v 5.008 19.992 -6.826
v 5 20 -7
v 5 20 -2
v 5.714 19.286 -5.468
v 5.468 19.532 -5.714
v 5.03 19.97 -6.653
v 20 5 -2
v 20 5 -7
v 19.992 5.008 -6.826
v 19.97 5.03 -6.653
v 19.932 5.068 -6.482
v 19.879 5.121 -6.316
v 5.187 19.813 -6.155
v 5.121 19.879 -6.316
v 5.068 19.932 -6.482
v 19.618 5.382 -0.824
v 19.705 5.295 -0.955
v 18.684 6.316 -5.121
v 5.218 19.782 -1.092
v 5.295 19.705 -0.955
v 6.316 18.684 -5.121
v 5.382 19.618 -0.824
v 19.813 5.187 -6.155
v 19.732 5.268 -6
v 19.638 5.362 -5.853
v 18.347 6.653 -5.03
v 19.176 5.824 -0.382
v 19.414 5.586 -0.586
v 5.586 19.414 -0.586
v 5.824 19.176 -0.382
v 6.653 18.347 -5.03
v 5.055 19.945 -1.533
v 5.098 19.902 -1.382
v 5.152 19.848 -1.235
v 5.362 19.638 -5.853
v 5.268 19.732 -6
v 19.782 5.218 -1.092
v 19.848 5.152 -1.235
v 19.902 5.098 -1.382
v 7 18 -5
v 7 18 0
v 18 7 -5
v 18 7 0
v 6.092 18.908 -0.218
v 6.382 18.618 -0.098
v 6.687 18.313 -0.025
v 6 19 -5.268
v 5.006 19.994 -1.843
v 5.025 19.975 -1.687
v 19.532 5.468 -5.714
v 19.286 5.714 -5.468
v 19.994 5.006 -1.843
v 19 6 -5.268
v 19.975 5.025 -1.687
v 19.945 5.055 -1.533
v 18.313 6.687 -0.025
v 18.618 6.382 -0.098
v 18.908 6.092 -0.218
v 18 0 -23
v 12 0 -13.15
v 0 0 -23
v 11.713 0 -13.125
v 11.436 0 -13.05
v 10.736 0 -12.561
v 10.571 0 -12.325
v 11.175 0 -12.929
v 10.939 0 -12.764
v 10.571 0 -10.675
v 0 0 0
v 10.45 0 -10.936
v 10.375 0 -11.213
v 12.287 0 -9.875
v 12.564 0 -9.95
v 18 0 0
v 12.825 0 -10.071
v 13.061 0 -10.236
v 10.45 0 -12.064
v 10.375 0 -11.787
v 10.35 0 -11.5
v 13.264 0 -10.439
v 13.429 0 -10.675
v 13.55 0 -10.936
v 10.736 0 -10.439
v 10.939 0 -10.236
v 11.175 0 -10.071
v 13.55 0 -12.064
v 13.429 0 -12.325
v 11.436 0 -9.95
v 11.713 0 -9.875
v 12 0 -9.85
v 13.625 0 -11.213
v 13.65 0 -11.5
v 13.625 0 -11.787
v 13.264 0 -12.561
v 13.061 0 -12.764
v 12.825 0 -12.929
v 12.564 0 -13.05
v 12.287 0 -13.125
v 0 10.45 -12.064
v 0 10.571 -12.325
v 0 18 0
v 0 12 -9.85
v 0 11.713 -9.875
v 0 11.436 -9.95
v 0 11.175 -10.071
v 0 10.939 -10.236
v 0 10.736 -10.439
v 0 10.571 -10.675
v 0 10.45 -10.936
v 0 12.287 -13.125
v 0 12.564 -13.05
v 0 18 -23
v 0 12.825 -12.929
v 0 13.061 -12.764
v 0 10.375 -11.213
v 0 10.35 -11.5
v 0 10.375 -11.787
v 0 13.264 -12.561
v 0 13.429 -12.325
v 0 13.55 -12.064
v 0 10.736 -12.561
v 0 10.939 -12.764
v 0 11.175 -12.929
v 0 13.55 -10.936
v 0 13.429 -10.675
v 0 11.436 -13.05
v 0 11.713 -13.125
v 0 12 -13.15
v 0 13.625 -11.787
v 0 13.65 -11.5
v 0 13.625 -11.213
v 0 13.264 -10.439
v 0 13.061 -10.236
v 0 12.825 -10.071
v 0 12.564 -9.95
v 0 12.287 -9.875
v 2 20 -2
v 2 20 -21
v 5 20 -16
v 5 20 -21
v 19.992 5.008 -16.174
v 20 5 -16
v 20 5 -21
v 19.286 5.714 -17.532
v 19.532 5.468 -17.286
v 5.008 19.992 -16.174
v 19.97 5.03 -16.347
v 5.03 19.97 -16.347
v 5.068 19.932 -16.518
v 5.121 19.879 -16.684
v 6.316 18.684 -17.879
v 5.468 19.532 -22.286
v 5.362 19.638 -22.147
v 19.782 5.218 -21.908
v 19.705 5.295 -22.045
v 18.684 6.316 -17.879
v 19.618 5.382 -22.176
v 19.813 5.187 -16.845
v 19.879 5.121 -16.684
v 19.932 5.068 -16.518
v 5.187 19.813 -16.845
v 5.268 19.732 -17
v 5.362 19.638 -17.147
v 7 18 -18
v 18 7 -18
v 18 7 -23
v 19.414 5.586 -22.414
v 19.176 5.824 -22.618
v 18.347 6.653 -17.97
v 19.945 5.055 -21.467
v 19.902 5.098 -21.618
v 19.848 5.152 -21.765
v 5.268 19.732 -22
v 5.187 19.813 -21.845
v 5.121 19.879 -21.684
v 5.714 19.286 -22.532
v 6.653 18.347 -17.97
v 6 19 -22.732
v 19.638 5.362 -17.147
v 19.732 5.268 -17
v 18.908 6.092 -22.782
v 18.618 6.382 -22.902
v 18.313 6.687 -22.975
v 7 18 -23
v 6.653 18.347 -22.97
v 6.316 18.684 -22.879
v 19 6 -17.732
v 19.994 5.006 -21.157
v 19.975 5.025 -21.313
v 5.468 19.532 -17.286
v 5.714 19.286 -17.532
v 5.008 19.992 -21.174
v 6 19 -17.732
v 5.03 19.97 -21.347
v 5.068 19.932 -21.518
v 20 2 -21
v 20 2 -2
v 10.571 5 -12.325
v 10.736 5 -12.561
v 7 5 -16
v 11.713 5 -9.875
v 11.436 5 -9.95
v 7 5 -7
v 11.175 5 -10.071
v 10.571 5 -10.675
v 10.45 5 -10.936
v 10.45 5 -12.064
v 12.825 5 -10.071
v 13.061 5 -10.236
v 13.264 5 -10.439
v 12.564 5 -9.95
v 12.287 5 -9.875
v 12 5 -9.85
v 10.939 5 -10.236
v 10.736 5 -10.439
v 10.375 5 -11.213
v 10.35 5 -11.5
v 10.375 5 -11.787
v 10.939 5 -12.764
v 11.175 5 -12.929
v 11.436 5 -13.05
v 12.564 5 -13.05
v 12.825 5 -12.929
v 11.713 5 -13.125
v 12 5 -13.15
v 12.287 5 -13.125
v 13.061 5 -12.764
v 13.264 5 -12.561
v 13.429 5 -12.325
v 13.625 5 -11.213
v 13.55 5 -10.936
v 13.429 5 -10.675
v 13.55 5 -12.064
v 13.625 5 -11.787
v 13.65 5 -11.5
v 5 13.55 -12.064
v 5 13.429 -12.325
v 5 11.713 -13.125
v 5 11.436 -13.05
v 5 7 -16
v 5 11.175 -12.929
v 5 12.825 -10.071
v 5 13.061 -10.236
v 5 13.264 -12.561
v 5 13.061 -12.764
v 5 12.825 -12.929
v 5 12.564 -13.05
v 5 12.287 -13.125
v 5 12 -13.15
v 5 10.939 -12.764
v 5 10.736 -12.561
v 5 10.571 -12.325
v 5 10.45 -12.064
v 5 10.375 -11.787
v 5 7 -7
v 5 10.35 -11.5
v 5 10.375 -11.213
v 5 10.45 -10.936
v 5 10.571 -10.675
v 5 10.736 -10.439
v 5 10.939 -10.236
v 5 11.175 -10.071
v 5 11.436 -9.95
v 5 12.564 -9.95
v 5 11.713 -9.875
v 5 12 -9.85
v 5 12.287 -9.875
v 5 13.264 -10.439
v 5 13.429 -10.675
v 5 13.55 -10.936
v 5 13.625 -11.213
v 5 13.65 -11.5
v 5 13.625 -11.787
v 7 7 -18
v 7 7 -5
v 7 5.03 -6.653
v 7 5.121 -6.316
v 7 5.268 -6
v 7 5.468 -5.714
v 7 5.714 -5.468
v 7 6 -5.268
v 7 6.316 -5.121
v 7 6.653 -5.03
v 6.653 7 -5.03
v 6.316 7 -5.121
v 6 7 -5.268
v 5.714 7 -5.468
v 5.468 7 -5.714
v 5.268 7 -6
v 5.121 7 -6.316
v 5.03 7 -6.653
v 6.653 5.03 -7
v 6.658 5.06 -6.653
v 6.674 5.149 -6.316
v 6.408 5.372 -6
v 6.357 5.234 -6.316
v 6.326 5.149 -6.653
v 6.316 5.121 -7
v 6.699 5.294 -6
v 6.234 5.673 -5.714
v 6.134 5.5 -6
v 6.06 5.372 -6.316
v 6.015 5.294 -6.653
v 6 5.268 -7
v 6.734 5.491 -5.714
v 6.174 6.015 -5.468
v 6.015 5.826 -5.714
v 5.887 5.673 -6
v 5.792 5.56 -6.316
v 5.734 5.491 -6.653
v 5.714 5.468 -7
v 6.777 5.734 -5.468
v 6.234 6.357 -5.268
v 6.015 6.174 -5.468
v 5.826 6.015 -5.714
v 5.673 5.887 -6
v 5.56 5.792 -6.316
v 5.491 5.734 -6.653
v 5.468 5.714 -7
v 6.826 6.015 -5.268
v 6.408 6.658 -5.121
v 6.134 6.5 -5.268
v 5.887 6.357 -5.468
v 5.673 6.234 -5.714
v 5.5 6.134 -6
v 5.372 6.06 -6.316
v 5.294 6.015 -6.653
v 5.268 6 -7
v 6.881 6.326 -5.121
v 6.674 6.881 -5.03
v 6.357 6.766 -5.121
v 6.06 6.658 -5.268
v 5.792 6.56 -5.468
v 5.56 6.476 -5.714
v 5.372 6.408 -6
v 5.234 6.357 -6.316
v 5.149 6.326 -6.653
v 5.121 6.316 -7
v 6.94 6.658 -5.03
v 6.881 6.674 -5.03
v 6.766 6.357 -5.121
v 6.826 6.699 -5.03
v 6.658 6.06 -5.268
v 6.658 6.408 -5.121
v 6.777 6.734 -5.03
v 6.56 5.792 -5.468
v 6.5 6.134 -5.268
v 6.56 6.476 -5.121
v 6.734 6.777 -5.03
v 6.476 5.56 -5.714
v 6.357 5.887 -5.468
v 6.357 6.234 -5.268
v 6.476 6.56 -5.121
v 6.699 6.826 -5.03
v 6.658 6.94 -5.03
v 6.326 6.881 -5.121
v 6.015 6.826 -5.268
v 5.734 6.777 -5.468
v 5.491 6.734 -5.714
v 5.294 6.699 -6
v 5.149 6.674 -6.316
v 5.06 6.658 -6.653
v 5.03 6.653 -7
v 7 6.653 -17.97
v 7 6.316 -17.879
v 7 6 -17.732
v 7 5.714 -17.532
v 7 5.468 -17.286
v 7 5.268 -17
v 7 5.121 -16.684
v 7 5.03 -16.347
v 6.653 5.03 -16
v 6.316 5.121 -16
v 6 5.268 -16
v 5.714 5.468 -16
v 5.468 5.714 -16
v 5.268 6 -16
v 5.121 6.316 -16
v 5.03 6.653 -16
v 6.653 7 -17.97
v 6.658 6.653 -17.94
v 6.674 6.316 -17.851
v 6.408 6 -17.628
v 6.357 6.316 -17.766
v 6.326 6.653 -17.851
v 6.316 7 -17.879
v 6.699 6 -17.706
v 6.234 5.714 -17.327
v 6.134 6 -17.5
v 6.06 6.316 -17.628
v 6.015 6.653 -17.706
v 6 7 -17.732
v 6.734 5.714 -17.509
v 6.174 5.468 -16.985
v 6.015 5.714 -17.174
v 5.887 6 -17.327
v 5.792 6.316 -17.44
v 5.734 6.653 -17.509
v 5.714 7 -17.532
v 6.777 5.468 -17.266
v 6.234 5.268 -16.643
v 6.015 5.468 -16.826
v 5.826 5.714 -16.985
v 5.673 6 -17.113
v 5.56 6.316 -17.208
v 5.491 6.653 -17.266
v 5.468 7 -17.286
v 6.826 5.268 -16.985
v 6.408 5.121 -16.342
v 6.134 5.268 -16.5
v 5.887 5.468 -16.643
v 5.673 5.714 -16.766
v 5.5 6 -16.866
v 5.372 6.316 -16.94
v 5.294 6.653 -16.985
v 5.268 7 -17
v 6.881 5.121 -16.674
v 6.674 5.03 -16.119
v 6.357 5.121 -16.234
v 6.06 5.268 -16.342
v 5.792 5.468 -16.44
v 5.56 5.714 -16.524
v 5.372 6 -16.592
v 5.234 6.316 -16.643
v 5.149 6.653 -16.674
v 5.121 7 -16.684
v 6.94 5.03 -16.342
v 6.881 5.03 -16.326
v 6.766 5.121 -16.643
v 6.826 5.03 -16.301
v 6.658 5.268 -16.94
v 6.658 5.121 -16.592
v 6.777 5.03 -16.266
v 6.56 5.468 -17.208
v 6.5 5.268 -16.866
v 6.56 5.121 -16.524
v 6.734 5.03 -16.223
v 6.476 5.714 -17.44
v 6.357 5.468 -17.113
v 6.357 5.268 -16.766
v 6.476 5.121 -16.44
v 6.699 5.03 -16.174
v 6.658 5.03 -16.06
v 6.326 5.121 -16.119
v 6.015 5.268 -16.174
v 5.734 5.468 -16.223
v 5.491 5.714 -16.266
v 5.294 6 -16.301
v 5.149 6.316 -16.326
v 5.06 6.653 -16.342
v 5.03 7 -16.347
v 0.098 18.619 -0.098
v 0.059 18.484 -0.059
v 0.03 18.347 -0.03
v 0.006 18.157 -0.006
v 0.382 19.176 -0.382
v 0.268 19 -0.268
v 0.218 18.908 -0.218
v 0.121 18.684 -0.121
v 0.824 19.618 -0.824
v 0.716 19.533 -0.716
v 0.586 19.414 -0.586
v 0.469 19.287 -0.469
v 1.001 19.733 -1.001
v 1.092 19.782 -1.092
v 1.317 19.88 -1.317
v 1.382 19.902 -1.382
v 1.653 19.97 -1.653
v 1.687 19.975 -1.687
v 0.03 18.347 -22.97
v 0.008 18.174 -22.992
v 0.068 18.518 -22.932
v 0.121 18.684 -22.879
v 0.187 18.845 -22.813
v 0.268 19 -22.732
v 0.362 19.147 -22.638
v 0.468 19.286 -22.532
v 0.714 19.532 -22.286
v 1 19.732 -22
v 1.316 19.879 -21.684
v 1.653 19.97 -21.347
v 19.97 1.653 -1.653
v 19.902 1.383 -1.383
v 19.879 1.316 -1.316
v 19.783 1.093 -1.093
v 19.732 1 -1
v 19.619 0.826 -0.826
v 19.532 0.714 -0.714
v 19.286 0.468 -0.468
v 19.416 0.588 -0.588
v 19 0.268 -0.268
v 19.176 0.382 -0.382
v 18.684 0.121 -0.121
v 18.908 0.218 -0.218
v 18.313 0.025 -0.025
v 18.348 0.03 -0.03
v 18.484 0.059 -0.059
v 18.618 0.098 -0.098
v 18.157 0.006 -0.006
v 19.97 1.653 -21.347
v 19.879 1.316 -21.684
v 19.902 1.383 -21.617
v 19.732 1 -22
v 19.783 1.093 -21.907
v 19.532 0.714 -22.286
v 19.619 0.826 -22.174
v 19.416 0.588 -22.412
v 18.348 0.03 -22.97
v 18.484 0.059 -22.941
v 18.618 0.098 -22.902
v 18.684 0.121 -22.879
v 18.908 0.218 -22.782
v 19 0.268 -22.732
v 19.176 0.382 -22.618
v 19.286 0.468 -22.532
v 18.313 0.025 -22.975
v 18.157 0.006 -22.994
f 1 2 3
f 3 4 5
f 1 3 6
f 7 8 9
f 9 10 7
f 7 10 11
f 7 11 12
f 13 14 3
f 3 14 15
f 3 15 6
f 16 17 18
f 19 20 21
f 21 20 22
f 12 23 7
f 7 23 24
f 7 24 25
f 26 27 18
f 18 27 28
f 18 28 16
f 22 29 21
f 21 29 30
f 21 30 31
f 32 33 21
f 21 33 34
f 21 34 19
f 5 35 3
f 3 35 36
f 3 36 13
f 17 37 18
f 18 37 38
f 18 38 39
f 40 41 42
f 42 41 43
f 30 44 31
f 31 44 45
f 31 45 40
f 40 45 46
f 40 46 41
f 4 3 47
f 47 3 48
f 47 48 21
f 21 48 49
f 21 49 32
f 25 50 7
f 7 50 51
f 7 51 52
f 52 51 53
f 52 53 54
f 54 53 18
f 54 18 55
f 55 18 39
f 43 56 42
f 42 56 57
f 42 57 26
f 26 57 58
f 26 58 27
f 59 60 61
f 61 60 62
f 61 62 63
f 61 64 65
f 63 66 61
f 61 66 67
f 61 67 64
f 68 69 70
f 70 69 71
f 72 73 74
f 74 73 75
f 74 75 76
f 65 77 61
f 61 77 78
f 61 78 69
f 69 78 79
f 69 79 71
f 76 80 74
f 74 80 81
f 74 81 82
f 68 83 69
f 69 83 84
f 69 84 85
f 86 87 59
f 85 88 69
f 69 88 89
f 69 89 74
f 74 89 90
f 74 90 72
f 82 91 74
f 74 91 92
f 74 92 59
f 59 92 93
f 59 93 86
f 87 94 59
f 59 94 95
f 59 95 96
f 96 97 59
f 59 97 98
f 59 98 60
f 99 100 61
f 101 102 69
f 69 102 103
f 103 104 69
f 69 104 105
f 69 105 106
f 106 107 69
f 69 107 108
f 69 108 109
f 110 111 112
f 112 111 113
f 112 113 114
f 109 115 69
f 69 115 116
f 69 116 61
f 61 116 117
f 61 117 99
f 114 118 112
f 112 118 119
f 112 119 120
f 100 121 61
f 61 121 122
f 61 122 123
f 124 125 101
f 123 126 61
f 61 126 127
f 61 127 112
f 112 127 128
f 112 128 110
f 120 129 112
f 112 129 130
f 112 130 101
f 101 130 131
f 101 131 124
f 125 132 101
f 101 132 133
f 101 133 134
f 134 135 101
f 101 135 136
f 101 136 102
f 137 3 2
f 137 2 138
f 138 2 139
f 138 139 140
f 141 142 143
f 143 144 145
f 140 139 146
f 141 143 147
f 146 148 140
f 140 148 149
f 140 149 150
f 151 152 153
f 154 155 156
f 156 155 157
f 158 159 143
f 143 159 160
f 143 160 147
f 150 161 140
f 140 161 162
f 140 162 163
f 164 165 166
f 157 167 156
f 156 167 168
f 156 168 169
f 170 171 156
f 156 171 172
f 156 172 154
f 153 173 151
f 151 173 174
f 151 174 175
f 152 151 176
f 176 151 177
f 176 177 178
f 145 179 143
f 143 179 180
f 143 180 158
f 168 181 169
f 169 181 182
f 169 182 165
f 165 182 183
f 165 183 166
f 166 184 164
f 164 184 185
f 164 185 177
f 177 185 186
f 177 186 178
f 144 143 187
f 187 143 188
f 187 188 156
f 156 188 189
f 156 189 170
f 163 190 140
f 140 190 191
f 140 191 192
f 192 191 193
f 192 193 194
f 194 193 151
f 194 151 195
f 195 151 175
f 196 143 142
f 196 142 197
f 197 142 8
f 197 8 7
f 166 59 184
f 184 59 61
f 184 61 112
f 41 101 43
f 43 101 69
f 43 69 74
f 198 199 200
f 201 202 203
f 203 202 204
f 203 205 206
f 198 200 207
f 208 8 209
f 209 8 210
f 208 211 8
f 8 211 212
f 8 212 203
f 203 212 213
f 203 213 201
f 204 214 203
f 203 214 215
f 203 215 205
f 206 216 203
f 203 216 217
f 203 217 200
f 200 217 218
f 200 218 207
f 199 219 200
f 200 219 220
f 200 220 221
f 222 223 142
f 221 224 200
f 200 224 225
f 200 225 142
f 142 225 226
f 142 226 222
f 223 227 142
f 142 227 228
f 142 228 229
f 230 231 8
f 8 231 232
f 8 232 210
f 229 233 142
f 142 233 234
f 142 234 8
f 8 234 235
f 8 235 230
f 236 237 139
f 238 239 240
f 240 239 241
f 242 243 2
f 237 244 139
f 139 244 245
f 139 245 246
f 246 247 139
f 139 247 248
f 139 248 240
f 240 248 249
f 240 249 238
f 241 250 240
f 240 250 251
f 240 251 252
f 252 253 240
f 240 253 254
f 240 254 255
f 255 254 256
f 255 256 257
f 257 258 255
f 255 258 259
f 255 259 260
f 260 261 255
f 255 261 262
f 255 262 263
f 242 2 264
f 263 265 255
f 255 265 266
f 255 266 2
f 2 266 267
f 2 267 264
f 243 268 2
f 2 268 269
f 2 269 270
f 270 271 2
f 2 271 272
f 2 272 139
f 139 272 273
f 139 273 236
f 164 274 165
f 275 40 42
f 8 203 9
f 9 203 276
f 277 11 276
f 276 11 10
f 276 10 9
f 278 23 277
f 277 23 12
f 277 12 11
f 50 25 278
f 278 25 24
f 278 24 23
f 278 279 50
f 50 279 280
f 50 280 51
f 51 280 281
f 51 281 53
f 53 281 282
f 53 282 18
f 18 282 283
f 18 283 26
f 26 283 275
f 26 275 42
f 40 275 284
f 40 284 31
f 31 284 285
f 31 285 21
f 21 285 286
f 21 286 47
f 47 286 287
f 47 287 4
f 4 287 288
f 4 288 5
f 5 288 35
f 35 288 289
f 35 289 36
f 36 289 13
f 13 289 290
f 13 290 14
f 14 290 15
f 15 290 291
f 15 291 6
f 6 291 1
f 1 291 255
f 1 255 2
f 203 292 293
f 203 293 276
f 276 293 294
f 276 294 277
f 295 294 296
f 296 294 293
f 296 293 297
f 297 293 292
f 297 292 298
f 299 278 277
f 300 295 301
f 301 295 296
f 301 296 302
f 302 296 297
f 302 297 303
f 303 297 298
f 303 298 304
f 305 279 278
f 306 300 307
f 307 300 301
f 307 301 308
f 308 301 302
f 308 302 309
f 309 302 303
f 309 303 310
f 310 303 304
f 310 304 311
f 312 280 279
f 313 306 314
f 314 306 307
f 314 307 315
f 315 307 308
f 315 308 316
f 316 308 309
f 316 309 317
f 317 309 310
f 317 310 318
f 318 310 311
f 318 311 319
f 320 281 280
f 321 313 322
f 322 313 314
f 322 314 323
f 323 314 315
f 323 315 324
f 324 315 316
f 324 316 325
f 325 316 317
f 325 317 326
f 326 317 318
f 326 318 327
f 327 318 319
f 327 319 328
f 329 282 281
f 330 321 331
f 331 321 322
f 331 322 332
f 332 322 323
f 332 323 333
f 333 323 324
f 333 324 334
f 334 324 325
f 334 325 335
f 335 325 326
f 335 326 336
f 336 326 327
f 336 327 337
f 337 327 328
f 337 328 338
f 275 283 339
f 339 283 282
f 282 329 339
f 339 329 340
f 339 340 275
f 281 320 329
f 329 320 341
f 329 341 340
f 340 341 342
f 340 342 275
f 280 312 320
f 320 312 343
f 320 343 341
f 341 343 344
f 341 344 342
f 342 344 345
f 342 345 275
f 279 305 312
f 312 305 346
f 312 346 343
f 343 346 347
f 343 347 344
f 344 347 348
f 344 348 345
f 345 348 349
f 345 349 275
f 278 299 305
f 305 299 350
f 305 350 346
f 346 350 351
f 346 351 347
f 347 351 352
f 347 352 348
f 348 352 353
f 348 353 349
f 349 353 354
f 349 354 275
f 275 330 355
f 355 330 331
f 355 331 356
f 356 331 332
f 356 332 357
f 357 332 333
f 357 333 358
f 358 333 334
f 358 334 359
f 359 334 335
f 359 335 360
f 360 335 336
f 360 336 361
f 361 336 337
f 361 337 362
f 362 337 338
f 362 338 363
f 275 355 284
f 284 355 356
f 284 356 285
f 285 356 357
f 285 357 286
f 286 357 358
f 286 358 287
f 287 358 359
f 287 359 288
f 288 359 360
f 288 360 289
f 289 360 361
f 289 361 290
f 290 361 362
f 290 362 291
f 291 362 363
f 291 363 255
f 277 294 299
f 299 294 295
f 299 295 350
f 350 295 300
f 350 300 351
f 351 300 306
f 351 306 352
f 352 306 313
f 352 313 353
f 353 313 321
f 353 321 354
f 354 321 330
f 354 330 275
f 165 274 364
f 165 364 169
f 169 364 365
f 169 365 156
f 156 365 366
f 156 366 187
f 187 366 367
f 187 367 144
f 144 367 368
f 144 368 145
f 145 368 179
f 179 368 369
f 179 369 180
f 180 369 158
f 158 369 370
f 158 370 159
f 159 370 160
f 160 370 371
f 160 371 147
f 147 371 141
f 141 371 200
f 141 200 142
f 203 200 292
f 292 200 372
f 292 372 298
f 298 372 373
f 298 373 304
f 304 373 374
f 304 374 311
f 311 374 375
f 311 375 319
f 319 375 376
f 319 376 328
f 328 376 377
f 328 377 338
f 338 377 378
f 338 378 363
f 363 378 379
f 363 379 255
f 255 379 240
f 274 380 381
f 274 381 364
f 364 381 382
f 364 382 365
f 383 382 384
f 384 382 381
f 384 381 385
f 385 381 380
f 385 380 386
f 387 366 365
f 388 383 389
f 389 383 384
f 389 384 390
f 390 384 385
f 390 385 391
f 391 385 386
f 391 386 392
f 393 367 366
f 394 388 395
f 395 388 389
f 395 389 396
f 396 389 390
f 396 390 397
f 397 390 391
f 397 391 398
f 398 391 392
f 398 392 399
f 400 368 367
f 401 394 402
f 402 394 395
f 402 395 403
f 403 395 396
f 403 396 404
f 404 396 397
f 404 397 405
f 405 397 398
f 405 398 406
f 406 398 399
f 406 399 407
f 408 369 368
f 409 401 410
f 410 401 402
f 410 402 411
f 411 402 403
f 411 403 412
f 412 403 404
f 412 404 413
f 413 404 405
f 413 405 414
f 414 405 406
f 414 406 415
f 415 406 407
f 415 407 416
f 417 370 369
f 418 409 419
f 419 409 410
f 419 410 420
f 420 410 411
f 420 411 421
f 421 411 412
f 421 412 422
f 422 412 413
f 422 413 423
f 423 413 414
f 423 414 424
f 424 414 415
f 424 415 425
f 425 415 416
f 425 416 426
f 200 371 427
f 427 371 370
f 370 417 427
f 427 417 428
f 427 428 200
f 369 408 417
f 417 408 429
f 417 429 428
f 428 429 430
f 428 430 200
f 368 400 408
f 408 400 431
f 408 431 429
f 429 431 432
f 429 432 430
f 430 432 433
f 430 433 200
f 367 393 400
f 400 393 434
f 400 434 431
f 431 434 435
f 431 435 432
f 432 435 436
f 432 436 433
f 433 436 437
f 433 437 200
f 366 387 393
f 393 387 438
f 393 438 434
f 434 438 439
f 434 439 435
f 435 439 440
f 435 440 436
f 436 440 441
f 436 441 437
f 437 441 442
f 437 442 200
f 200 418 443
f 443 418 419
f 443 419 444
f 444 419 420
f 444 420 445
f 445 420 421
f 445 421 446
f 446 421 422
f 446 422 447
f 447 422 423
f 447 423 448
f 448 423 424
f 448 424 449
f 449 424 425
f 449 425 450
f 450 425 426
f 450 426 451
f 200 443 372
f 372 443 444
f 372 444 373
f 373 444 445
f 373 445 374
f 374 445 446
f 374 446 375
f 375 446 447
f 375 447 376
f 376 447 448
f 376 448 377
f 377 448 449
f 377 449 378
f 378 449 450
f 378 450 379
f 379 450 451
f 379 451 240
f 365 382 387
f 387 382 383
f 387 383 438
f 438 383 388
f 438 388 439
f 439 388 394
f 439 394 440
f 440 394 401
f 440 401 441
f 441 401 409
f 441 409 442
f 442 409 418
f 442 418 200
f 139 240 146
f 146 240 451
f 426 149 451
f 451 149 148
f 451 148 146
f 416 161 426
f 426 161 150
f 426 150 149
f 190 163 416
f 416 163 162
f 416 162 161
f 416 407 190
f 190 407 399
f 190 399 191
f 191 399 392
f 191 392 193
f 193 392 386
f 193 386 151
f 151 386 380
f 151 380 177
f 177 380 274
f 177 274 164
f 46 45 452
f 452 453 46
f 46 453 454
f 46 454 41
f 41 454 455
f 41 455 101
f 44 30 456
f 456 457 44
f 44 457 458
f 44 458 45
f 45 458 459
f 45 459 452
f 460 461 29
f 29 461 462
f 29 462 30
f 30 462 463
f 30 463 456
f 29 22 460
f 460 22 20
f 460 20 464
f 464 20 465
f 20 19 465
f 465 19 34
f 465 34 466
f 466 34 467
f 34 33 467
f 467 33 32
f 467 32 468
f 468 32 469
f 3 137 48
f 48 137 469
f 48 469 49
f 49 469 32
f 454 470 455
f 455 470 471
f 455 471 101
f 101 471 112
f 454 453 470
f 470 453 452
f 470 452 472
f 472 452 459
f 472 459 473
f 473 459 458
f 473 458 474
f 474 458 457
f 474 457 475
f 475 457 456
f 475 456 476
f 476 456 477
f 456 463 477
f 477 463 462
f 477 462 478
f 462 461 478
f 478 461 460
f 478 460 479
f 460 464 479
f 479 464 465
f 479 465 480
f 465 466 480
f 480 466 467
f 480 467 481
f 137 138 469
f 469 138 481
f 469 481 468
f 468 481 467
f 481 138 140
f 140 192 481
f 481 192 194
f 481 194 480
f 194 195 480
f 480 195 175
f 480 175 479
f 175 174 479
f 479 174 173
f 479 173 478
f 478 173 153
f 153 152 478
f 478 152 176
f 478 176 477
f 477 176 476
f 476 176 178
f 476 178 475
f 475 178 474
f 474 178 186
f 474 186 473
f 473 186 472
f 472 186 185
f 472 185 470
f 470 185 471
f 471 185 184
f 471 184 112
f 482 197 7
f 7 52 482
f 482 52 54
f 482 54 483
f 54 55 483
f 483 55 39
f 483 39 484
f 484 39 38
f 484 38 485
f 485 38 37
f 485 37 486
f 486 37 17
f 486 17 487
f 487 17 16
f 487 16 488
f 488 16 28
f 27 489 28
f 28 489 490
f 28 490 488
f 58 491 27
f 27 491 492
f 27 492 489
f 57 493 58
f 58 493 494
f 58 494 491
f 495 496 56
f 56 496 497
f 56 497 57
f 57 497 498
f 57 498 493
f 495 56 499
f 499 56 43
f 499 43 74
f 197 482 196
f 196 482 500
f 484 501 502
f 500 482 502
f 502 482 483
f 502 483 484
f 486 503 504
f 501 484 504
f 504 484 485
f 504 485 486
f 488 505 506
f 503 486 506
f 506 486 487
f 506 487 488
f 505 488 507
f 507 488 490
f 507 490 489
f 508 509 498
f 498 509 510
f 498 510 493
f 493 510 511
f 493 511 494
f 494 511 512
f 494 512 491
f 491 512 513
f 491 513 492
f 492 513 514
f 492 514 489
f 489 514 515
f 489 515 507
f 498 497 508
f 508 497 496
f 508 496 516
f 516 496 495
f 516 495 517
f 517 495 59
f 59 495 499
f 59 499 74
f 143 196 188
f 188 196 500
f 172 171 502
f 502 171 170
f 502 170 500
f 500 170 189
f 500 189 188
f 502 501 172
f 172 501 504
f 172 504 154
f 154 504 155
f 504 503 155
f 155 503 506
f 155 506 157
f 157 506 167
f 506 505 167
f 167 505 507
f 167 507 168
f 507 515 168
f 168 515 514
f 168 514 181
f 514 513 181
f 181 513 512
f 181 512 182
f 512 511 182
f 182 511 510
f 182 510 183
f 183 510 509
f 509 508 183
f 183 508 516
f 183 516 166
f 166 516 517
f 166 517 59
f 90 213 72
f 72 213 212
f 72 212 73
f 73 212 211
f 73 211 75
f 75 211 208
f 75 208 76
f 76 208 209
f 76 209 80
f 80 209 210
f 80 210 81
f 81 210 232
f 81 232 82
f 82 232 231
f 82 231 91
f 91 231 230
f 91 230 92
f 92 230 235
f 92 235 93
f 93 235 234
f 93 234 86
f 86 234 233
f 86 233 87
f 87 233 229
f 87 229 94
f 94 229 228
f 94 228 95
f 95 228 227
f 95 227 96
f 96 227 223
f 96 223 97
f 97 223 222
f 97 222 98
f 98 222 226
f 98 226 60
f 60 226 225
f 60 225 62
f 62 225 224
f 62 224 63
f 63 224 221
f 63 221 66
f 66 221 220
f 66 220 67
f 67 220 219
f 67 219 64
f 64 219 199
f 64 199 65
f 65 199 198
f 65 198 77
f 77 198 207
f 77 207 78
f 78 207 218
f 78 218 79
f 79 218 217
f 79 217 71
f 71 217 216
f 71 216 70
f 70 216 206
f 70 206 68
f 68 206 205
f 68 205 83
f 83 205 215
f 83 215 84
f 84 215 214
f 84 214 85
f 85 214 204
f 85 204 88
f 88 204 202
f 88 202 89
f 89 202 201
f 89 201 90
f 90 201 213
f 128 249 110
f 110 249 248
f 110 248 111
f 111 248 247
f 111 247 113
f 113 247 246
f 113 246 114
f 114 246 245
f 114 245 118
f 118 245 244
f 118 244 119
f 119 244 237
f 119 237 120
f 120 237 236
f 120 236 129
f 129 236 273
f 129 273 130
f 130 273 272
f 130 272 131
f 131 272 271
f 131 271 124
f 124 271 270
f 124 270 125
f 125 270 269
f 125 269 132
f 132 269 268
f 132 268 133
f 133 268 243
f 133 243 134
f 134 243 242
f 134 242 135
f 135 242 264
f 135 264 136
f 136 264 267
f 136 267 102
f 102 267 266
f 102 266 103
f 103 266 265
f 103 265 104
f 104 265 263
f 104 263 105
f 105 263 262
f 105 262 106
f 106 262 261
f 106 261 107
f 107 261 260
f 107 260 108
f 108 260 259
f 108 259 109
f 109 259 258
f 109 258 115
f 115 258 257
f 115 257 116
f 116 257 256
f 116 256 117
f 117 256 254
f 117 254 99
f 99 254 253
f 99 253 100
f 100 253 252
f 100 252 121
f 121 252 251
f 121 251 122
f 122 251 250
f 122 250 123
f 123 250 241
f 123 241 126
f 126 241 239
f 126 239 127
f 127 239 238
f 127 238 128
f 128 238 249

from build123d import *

# Parameters (mm, degrees)
BOSS_EXTRUDE2_DEPTH                   = 23
SHELL1_START                          = 5
SHELL1_OUTLINE_W                      = 16
SHELL1_OUTLINE_H                      = 13
SHELL1_DEPTH                          = 15
FILLET1_R                             = 2
FILLET3_R                             = 2
TAP_DRILL_FOR_M4X0_7_TAP1_D           = 3.3
TAP_DRILL_FOR_M4X0_7_TAP1_ON_FACE_2_D = 3.3


# Read off the part's stored shape, not the designer's step: Shell1
with BuildPart() as part:
    # Sketch1 → Boss-Extrude2 (new body)
    with BuildSketch(Plane.XY):
        Polygon((0, 0), (0, 20), (5, 20), (20, 5), (20, 0), align=None)
    extrude(amount=-BOSS_EXTRUDE2_DEPTH)

    # Shell1 outline → Shell1 (cut)
    with BuildSketch(Plane(origin=(0, 0, 0), x_dir=(1, 0, 0), z_dir=(0, 1, 0)).offset(SHELL1_START)):
        with Locations((13, 11.5)):
            Rectangle(SHELL1_OUTLINE_W, SHELL1_OUTLINE_H)
    extrude(amount=SHELL1_DEPTH, mode=Mode.SUBTRACT)

    # Fillet1
    fillet1_edges = [part.edges().sort_by_distance(p)[0] for p in [
        (12.5, 5, -18),
        (5, 12.5, -18),
        (5, 5, -11.5),
        (12.5, 5, -5),
        (5, 12.5, -5),
    ]]
    fillet(fillet1_edges, radius=FILLET1_R)

    # Fillet3
    fillet3_edges = [part.edges().sort_by_distance(p)[0] for p in [
        (2.5, 20, -23),
        (2.5, 20, 0),
        (20, 2.5, 0),
        (20, 2.5, -23),
        (0, 20, -11.5),
        (20, 0, -11.5),
    ]]
    fillet(fillet3_edges, radius=FILLET3_R)

    # Tap Drill for M4x0.7 Tap1 (through all)
    with Locations(Plane(origin=(5, 12, -11.5), x_dir=(0, 0, 1), z_dir=(1, 0, 0))):
        with Locations((0, 0)):
            Hole(TAP_DRILL_FOR_M4X0_7_TAP1_D / 2)

    # Tap Drill for M4x0.7 Tap1 on face 2 (through all)
    with Locations(Plane(origin=(12, 5, -11.5), x_dir=(0, 0, 1), z_dir=(0, 1, 0))):
        with Locations((0, 0)):
            Hole(TAP_DRILL_FOR_M4X0_7_TAP1_ON_FACE_2_D / 2)


solid = part.part
